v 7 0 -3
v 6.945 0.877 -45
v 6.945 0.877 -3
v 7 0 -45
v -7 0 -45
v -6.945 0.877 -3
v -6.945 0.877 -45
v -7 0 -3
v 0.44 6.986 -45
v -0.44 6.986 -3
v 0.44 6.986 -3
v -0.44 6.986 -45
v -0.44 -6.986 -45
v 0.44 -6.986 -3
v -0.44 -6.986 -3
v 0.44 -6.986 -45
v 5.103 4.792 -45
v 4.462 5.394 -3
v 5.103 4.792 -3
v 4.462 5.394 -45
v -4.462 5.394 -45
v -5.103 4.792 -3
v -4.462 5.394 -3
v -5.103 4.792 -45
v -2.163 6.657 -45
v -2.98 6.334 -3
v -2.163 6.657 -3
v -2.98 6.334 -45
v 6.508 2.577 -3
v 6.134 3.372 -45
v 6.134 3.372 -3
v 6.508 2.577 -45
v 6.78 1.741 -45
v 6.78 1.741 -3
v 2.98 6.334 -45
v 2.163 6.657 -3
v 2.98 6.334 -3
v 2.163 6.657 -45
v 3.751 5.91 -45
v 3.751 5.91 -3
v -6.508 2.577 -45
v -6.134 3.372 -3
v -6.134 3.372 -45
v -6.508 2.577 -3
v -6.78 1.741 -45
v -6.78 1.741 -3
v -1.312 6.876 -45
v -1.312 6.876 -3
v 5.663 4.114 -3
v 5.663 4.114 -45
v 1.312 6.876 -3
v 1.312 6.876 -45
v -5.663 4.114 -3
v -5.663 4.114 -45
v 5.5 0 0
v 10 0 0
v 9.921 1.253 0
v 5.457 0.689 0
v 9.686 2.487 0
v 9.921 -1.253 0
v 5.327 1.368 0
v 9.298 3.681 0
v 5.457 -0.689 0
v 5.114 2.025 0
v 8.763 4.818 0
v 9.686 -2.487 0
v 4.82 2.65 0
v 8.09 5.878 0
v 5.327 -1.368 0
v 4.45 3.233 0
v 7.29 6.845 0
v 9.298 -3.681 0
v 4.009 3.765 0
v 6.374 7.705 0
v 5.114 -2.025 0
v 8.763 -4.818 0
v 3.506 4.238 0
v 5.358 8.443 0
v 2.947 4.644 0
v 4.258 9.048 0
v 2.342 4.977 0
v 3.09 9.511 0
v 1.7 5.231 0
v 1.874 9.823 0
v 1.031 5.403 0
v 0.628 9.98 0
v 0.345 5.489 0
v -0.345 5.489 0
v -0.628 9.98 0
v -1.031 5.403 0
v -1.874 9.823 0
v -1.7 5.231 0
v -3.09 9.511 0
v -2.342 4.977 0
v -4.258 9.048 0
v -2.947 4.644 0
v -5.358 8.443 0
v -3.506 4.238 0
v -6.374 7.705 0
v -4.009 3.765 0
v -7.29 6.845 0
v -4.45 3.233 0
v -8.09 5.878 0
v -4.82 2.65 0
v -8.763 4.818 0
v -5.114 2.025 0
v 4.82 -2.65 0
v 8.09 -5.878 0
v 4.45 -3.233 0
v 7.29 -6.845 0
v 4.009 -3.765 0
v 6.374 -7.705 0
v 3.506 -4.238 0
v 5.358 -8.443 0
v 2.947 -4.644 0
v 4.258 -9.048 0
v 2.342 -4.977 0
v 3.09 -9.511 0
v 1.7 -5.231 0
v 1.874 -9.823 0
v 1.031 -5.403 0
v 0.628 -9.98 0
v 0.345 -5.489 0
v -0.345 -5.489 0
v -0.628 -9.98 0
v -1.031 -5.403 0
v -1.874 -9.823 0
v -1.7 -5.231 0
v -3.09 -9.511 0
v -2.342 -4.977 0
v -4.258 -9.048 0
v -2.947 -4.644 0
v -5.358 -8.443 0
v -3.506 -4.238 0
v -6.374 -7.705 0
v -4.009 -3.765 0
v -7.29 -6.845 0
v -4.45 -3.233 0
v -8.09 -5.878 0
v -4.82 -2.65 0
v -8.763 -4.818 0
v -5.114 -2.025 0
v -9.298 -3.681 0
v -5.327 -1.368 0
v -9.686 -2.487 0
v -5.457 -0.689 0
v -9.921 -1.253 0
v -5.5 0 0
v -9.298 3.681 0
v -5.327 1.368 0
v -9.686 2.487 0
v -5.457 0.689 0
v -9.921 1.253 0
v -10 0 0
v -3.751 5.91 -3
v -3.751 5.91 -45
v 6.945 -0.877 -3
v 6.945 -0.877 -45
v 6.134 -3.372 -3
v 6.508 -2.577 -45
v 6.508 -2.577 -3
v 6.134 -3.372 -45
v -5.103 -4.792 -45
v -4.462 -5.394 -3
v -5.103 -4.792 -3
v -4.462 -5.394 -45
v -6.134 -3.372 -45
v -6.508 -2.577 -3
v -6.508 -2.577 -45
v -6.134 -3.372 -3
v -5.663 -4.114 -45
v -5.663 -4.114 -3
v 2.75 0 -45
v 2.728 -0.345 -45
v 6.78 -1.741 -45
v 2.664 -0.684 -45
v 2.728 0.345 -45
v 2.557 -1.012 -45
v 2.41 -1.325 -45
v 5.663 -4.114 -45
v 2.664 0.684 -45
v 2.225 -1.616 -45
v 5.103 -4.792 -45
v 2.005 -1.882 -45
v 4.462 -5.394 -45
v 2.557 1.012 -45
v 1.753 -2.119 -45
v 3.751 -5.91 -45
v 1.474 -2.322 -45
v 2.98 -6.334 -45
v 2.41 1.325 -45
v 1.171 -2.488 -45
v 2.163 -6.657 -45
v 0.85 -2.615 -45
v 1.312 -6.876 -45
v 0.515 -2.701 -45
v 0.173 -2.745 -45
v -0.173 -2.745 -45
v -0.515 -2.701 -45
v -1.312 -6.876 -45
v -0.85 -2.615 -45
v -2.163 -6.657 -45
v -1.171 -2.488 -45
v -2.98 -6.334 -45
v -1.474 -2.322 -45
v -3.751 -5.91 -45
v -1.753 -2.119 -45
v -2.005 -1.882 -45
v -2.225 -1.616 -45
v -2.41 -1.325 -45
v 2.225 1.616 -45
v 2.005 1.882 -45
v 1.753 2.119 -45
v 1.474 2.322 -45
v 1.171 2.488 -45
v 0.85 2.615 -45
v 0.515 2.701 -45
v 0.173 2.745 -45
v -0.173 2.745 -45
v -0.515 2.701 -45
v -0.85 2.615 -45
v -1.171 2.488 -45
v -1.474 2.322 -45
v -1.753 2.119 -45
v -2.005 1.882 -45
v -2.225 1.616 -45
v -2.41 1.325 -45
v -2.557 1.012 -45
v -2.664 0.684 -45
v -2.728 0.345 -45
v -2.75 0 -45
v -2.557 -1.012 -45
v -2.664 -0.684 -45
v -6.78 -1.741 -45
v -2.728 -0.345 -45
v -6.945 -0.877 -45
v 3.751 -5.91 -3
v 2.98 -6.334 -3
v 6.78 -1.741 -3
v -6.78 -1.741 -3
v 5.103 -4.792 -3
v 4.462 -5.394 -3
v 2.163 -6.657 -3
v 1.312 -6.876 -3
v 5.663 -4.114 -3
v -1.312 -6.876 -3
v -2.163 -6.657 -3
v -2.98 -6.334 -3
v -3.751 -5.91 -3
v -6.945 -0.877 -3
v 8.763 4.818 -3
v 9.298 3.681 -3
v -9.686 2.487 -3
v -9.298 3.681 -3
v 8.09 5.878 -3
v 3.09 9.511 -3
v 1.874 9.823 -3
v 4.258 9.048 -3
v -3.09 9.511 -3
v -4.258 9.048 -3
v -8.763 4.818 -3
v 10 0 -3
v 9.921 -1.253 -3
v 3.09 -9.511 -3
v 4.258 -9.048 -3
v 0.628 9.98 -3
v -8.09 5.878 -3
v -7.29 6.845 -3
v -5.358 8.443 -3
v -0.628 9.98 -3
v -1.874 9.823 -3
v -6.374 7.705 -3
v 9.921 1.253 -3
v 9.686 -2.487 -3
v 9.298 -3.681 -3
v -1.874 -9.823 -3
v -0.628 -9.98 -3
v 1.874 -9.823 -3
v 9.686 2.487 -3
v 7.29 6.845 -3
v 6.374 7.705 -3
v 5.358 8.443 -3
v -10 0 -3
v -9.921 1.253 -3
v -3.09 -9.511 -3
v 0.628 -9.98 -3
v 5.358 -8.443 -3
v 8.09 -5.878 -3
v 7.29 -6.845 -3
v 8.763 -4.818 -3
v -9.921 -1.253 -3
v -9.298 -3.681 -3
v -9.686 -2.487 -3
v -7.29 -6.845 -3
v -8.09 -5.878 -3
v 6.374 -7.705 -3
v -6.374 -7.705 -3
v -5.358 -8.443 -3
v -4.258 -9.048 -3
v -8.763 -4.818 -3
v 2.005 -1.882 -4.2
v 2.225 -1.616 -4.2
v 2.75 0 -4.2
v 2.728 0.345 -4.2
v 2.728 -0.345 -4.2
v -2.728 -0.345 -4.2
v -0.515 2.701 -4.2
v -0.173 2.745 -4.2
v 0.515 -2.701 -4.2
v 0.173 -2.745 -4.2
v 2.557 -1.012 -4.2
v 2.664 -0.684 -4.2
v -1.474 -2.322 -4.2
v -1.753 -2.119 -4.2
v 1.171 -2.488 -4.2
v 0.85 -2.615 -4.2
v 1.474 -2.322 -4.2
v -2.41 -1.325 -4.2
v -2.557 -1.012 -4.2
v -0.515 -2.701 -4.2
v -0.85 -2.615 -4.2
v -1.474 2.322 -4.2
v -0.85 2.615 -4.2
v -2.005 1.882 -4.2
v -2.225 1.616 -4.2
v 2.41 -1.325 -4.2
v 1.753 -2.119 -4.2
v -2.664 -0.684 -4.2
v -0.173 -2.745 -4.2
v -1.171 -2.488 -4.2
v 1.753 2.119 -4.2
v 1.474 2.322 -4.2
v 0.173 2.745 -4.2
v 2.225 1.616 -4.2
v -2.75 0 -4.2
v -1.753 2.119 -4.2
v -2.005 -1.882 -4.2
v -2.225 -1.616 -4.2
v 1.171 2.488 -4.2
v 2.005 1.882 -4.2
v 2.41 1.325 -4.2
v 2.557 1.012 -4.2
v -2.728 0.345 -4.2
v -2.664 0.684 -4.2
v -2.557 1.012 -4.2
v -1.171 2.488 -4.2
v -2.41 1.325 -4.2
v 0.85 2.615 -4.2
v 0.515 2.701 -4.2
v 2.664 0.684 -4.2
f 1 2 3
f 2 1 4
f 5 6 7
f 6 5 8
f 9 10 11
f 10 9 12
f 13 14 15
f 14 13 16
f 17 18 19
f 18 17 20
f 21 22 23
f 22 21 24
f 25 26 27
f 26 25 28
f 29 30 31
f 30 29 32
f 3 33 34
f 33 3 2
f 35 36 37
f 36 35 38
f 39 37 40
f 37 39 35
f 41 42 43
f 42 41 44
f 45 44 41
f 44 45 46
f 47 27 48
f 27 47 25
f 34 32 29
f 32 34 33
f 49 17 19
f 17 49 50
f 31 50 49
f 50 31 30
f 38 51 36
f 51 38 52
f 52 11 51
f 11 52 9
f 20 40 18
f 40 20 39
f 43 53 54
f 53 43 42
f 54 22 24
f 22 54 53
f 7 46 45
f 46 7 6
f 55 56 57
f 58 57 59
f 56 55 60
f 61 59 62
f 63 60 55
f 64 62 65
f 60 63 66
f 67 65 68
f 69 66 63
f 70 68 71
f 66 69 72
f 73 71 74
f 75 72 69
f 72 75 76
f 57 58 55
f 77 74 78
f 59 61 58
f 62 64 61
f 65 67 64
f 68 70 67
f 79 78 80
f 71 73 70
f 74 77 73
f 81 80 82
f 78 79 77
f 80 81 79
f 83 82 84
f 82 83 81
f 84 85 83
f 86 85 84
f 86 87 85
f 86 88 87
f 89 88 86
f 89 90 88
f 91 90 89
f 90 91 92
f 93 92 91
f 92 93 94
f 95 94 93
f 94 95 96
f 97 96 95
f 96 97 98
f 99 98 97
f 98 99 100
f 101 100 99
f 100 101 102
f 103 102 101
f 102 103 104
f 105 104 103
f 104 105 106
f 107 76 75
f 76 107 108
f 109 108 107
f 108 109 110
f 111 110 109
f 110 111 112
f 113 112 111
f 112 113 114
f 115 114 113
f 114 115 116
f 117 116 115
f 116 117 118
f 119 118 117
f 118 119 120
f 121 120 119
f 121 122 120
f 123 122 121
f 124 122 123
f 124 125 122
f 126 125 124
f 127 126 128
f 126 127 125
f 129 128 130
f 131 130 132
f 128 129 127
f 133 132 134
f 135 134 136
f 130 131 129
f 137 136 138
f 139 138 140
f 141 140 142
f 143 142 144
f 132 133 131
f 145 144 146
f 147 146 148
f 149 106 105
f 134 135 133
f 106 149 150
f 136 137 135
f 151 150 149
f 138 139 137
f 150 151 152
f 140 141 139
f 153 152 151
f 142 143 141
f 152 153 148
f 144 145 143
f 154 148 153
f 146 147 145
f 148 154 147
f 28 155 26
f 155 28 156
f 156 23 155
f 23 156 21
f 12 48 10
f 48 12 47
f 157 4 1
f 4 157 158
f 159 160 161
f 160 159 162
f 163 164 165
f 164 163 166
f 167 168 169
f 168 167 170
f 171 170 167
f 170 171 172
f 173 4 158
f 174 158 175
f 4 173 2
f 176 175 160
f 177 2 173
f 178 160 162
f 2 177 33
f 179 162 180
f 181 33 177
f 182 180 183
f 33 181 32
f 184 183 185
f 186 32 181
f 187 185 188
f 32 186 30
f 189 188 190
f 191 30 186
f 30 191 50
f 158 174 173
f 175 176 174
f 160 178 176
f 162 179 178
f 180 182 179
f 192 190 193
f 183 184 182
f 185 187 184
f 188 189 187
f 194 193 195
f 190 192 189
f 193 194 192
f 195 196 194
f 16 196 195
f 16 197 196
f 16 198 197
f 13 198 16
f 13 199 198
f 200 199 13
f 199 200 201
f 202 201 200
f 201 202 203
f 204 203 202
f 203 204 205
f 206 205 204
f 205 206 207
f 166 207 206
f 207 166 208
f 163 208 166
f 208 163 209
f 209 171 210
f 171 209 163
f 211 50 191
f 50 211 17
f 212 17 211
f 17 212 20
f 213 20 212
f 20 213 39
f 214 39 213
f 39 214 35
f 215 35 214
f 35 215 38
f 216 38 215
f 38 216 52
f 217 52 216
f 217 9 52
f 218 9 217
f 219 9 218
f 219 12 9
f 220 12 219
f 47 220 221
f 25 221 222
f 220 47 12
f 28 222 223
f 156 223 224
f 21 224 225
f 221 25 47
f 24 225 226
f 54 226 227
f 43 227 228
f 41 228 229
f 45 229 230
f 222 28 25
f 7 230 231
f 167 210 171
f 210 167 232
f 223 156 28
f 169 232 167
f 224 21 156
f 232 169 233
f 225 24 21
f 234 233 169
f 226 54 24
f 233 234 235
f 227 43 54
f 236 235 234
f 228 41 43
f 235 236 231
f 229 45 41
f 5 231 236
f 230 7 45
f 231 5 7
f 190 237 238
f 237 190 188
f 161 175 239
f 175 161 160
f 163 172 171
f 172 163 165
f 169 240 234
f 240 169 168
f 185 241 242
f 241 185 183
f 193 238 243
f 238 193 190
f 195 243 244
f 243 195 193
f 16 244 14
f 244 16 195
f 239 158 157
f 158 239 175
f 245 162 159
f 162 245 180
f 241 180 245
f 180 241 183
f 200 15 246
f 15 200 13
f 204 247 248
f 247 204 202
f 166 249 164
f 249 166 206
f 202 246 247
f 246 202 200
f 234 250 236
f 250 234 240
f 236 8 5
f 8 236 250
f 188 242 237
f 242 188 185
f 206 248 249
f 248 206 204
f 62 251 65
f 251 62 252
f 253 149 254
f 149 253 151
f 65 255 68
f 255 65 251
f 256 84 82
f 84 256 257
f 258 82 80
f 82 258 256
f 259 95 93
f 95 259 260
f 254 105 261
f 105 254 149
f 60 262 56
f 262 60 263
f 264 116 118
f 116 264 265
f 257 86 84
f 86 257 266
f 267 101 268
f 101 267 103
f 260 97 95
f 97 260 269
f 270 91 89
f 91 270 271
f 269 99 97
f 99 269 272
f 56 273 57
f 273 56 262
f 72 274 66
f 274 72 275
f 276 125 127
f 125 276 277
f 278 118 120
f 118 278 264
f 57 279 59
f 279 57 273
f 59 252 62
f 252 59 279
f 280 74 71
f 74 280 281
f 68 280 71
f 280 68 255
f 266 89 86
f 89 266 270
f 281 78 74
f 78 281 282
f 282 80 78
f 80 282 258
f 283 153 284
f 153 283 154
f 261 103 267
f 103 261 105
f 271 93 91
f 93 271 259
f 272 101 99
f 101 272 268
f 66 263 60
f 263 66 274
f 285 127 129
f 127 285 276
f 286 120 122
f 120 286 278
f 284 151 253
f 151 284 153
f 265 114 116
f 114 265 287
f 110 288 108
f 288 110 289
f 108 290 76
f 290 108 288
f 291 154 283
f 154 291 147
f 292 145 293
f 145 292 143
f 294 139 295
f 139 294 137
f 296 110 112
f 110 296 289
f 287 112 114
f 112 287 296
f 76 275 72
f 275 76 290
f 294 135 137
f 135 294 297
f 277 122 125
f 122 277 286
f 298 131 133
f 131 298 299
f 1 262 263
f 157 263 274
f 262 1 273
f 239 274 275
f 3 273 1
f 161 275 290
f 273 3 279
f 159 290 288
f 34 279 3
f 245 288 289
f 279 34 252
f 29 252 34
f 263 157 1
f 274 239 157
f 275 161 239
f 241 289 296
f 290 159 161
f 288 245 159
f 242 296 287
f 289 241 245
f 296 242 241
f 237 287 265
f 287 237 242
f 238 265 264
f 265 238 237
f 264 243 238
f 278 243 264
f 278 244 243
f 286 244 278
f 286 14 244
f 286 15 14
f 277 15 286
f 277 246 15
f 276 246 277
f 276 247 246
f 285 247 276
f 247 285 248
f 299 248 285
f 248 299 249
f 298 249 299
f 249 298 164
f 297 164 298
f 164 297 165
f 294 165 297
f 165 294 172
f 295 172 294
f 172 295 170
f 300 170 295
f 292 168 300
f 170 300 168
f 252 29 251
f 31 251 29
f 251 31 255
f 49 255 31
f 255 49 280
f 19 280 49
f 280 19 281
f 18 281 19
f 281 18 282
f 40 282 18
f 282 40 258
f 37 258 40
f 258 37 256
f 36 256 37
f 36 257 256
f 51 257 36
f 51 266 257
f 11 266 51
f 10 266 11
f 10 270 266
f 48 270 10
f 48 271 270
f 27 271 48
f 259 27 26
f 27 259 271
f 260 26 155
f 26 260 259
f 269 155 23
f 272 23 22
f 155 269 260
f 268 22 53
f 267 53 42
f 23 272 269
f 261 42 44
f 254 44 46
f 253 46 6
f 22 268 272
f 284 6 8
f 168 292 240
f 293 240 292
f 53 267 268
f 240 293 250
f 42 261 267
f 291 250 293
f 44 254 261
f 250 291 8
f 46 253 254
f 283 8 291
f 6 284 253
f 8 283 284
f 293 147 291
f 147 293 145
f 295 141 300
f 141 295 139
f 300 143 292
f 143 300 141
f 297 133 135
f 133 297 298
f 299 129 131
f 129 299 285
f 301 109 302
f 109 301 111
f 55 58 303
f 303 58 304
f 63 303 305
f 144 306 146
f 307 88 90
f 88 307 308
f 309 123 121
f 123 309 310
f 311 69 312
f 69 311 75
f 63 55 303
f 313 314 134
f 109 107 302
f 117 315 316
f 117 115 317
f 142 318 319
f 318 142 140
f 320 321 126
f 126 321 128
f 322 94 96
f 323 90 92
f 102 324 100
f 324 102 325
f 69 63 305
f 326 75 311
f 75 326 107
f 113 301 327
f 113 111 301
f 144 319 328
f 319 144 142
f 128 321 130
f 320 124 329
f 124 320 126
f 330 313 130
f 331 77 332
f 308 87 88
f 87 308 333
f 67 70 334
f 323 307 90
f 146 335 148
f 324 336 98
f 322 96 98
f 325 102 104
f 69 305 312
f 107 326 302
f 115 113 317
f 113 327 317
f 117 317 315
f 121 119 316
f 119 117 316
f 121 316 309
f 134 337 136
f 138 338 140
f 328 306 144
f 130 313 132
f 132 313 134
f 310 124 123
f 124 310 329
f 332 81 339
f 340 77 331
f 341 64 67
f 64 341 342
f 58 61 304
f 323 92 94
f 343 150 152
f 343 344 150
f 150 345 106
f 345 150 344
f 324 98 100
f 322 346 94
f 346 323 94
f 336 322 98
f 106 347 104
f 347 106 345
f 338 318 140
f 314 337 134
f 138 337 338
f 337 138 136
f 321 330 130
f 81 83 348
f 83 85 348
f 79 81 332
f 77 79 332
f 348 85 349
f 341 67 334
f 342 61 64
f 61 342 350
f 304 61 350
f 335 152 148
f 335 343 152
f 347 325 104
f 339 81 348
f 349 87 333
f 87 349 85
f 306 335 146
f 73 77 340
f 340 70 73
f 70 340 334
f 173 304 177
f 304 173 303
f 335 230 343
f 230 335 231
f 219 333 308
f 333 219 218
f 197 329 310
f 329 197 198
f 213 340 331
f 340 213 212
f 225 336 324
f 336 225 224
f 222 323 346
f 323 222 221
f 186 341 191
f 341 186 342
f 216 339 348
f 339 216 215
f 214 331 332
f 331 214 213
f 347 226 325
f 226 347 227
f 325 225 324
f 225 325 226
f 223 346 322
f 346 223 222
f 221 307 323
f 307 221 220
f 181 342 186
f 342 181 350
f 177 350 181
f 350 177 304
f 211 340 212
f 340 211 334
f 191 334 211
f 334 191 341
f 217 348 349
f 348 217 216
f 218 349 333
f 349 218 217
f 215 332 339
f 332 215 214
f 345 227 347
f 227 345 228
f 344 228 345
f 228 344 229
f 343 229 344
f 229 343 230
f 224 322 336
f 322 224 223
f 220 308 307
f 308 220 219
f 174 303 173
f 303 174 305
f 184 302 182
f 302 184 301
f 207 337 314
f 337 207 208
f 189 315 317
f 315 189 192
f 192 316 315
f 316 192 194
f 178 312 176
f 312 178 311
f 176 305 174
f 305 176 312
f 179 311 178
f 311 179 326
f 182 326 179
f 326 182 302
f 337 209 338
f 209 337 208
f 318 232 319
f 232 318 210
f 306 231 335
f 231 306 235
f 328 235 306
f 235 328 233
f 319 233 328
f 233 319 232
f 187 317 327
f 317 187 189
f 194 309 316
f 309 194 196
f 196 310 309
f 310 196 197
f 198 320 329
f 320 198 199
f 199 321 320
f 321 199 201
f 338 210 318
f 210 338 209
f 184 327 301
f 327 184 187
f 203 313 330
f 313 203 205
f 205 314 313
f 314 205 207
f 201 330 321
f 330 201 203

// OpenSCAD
$fn = 50;


difference() {
	union() {
		translate(v = [0, 0, -45.0000000000]) {
			cylinder(h = 45, r = 7.0000000000);
		}
		translate(v = [0, 0, -3.0000000000]) {
			cylinder(h = 3, r = 10.0000000000);
		}
	}
	union() {
		translate(v = [0, 0, 0]) {
			rotate(a = [0, 0, 0]) {
				difference() {
					union() {
						#translate(v = [0, 0, -45.0000000000]) {
							cylinder(h = 45, r = 2.2500000000);
						}
						#translate(v = [0, 0, -4.2000000000]) {
							cylinder(h = 4.2000000000, r = 7.0000000000, r1 = 2.7500000000, r2 = 5.5000000000);
						}
						#translate(v = [0, 0, -45.0000000000]) {
							cylinder(h = 45, r = 2.7500000000);
						}
						#translate(v = [0, 0, -45.0000000000]) {
							cylinder(h = 45, r = 2.2500000000);
						}
					}
					union();
				}
			}
		}
	}
}
